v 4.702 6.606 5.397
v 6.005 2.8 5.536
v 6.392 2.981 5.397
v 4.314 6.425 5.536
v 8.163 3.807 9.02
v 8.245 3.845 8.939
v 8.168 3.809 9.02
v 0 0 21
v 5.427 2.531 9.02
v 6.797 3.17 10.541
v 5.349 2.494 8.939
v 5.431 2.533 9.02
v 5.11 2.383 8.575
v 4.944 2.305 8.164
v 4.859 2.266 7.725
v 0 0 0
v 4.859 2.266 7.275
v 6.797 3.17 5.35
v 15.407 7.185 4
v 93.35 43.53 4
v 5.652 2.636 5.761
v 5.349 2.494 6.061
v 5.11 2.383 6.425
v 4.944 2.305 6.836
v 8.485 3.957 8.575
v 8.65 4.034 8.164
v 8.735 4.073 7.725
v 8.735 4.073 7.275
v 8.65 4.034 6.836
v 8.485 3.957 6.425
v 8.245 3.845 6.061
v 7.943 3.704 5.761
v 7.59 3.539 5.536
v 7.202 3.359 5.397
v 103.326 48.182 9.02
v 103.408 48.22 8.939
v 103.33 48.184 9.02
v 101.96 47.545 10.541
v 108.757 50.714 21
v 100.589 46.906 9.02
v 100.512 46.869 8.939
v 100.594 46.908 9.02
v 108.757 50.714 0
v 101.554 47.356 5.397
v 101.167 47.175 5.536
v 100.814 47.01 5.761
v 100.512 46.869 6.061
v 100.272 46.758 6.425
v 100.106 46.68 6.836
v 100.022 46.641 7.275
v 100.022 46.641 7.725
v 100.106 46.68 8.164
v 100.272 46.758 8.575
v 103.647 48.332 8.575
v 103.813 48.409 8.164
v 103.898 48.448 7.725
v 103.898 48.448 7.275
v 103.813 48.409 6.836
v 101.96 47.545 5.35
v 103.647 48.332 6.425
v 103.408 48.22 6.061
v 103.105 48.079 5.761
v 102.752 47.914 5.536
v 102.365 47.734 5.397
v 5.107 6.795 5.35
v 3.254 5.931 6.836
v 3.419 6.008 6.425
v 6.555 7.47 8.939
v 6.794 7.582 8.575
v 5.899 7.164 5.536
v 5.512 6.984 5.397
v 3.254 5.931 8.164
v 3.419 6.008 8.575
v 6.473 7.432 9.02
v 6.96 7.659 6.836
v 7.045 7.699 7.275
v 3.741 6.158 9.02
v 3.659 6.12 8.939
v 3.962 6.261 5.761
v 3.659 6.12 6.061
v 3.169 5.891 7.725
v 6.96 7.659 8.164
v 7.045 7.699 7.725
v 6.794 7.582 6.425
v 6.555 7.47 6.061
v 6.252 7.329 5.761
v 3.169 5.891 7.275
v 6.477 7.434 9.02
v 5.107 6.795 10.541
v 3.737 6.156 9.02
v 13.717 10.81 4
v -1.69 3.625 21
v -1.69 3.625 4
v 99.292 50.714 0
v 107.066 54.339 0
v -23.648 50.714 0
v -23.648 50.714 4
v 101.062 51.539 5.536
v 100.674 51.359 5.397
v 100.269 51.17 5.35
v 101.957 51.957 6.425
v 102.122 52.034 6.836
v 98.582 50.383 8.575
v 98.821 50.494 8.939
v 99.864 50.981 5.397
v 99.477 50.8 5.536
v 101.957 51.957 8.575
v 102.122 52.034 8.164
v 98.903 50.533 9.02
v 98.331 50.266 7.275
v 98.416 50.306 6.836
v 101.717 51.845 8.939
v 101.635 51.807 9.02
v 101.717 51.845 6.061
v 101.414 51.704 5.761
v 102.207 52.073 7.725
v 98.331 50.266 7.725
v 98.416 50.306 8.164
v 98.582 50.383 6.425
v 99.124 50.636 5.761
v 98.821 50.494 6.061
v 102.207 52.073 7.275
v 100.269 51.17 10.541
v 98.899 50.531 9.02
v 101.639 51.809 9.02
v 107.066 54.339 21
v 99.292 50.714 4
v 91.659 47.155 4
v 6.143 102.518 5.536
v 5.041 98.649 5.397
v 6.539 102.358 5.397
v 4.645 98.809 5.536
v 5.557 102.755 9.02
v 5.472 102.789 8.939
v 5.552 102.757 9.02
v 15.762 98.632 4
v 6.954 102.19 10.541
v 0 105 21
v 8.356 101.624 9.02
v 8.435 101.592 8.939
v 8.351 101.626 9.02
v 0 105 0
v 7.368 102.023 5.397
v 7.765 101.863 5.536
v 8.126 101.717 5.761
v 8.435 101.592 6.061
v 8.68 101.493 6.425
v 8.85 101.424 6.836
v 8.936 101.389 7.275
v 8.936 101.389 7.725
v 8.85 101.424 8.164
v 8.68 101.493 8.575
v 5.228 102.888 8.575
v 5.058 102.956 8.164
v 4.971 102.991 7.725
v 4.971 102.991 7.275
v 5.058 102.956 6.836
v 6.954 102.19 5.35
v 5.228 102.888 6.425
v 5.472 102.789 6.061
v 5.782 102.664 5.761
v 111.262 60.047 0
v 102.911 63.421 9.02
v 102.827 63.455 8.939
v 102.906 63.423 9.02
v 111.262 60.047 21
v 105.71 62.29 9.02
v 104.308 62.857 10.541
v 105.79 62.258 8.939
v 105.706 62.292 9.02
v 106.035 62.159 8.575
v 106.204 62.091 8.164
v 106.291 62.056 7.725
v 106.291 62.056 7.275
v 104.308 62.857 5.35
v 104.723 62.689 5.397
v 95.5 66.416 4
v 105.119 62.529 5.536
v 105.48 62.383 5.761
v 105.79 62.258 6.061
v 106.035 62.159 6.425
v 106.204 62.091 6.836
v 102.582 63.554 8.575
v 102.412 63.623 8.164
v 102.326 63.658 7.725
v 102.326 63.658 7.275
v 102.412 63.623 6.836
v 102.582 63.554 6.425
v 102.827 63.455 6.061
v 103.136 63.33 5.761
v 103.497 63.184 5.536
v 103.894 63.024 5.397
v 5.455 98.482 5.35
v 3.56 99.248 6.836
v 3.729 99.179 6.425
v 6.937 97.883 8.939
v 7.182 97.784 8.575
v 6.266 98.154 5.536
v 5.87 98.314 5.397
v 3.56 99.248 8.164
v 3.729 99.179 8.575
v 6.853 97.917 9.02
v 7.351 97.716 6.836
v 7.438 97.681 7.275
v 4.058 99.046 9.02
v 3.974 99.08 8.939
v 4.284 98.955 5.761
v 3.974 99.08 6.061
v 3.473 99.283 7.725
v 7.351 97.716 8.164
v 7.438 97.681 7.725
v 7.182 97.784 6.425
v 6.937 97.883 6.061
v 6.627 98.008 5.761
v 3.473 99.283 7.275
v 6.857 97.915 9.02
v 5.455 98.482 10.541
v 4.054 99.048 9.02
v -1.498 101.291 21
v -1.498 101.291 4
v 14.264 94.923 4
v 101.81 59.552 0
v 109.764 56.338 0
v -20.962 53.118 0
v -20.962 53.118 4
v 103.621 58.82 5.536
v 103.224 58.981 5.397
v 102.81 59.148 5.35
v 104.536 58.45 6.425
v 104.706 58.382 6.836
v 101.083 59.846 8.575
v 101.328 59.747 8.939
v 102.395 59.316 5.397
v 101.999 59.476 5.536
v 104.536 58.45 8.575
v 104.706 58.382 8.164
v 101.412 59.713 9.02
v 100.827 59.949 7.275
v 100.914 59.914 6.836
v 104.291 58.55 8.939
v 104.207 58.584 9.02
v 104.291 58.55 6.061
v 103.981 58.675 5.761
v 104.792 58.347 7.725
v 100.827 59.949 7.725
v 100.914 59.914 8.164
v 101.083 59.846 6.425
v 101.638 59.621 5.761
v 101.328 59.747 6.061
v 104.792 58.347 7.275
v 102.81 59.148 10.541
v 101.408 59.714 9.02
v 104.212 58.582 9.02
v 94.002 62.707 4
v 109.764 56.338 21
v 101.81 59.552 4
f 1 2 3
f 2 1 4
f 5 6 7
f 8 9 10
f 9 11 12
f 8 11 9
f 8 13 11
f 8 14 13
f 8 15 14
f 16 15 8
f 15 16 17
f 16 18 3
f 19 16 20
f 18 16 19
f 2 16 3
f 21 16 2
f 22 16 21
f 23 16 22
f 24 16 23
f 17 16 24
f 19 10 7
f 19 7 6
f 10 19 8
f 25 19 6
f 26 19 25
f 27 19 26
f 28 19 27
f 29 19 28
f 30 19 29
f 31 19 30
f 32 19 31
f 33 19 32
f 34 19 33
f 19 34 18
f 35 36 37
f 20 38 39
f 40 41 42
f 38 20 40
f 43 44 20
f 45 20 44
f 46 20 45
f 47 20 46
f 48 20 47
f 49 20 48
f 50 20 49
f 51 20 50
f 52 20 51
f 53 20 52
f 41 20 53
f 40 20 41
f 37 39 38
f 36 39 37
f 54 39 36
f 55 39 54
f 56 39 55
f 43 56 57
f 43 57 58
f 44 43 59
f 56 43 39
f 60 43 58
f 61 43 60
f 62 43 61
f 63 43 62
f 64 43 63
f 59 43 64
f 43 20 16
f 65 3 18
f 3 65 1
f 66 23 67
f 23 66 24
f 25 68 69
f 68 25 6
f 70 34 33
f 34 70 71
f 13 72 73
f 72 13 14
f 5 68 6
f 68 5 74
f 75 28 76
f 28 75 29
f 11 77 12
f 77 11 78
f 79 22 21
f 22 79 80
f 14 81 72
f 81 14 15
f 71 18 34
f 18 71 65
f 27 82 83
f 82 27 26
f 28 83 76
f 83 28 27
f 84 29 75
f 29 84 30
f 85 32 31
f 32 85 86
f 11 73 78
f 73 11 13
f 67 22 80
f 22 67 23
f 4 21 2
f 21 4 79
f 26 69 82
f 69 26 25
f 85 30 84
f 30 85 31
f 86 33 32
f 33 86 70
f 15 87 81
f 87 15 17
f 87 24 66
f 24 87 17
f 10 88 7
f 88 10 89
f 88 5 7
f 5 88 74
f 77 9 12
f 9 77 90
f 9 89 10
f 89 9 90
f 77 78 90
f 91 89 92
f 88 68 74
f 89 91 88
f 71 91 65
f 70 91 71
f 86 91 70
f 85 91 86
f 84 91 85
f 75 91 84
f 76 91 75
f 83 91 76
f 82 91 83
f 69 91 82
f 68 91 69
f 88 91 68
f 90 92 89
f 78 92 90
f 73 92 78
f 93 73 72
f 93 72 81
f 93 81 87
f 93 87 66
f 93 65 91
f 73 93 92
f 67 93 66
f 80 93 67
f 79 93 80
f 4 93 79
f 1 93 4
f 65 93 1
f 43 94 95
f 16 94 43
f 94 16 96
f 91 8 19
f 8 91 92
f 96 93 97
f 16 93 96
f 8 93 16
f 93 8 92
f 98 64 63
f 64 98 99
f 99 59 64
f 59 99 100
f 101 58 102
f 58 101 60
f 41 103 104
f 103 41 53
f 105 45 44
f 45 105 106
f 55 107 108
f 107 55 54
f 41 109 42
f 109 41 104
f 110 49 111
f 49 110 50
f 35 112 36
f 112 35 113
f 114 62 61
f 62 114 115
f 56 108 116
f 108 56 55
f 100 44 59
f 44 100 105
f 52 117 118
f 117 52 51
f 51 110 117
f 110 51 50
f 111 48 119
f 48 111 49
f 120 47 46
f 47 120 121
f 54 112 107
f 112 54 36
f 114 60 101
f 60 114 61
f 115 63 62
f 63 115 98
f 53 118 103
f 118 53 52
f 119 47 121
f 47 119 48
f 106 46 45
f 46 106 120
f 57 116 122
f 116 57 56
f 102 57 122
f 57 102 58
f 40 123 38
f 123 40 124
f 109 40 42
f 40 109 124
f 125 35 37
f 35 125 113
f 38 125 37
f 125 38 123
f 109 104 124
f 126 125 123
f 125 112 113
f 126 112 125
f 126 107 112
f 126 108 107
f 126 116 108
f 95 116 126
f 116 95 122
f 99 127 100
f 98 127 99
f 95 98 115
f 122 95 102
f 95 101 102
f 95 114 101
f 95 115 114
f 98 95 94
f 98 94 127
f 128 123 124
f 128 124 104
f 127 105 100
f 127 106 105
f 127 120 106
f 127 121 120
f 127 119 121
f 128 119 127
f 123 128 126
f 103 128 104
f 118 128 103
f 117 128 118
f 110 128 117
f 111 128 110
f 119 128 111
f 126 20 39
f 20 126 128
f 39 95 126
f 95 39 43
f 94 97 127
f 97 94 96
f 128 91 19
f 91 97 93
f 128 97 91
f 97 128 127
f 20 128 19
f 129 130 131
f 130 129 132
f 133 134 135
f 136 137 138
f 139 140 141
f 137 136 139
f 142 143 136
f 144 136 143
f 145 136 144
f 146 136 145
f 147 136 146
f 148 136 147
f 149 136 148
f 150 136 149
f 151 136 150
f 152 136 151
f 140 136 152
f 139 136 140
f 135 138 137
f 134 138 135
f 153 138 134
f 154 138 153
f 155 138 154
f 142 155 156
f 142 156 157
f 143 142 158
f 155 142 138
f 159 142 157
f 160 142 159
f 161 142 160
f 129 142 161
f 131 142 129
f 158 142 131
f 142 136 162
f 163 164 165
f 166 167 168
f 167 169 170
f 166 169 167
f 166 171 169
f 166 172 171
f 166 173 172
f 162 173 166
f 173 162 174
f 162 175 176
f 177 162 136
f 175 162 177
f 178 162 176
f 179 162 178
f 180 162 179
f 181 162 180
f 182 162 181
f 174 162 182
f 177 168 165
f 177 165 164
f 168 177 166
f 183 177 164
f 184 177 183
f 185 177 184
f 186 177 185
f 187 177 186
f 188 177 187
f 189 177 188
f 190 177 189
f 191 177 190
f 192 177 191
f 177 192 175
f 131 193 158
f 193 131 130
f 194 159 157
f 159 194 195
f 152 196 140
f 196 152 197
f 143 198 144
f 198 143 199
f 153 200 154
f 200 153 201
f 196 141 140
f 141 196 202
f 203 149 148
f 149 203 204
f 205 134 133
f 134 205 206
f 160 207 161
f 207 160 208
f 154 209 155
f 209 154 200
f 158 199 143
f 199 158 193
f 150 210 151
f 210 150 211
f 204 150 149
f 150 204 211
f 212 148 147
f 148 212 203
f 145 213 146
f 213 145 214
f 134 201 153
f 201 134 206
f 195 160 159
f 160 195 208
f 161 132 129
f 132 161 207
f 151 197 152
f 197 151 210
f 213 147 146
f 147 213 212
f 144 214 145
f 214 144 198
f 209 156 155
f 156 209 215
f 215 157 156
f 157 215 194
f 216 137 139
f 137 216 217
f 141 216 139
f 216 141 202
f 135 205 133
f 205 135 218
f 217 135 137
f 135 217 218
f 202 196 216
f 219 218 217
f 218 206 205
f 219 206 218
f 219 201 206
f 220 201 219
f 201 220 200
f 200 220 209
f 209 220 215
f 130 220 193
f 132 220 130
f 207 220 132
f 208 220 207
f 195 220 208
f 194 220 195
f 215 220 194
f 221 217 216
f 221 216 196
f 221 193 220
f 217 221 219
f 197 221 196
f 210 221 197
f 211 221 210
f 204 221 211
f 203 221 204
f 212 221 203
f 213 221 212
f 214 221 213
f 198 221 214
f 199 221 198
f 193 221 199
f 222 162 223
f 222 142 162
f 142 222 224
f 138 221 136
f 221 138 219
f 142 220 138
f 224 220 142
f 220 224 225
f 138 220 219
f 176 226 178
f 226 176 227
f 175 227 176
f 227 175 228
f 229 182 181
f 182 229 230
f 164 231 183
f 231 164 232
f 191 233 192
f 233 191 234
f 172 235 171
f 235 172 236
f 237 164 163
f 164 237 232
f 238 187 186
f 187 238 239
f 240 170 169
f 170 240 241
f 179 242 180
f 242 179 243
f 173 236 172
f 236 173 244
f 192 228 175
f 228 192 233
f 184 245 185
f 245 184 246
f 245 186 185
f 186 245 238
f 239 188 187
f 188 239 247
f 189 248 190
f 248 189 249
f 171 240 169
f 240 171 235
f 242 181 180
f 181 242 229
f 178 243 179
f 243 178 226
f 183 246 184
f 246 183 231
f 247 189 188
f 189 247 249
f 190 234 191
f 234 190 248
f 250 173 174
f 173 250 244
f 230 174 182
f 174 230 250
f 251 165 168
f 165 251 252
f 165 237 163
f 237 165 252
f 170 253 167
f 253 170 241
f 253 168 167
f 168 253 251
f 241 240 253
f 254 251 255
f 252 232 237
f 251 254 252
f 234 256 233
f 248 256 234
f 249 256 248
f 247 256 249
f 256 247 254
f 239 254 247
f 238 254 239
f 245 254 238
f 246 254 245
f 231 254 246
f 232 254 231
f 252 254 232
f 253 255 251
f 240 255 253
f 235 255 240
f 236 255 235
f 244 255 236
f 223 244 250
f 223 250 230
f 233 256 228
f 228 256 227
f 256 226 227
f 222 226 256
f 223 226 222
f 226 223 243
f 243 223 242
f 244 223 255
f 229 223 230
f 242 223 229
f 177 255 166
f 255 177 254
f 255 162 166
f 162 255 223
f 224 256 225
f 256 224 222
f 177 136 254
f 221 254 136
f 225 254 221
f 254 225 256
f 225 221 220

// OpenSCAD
// Fan size in mm
fan_size = 120;
// Angle of the fan stand
stand_degree = 25;
// Thickness of the walls of the stand
thickness = 4;
// Distance between the screw holes of the fan (look in spec, 105mm for a 120mm fan)
screw_distance = 105;
// Diameter of the screw hole
screw_hole_diameter = 4.3;
// Size of the tab holding the screws
screw_tab_size = 21;

screw_offset = (fan_size - screw_distance)/2;
screw_hole_radius = screw_hole_diameter / 2;

$fn=20+0;

include <MCAD/teardrop.scad>
include <MCAD/triangles.scad>

module screw_tab() {
    difference() {
        rotate(90, [1, 0, 0])
        a_triangle(45, screw_tab_size, thickness);
   
        translate([screw_offset, 0, screw_offset])
        rotate([0,0,90])
        teardrop(screw_hole_radius, thickness*2, 90);
    }
}

module holder_side() {
    union() {
        a_triangle(stand_degree, fan_size, thickness);

        translate([0, thickness, 0]) {
            screw_tab();

            translate([fan_size, 0, 0])
            mirror([1, 0, 0])
            screw_tab();
        }

        translate([fan_size - 2*thickness, 0, 0])
        cube([thickness*2, thickness, thickness]);
    }
}


rotate([0, 0, stand_degree])
holder_side();

translate([0, 105, 0 ])
rotate([0, 0, 180 - stand_degree +3])
mirror([1, 0, 0])
holder_side();
